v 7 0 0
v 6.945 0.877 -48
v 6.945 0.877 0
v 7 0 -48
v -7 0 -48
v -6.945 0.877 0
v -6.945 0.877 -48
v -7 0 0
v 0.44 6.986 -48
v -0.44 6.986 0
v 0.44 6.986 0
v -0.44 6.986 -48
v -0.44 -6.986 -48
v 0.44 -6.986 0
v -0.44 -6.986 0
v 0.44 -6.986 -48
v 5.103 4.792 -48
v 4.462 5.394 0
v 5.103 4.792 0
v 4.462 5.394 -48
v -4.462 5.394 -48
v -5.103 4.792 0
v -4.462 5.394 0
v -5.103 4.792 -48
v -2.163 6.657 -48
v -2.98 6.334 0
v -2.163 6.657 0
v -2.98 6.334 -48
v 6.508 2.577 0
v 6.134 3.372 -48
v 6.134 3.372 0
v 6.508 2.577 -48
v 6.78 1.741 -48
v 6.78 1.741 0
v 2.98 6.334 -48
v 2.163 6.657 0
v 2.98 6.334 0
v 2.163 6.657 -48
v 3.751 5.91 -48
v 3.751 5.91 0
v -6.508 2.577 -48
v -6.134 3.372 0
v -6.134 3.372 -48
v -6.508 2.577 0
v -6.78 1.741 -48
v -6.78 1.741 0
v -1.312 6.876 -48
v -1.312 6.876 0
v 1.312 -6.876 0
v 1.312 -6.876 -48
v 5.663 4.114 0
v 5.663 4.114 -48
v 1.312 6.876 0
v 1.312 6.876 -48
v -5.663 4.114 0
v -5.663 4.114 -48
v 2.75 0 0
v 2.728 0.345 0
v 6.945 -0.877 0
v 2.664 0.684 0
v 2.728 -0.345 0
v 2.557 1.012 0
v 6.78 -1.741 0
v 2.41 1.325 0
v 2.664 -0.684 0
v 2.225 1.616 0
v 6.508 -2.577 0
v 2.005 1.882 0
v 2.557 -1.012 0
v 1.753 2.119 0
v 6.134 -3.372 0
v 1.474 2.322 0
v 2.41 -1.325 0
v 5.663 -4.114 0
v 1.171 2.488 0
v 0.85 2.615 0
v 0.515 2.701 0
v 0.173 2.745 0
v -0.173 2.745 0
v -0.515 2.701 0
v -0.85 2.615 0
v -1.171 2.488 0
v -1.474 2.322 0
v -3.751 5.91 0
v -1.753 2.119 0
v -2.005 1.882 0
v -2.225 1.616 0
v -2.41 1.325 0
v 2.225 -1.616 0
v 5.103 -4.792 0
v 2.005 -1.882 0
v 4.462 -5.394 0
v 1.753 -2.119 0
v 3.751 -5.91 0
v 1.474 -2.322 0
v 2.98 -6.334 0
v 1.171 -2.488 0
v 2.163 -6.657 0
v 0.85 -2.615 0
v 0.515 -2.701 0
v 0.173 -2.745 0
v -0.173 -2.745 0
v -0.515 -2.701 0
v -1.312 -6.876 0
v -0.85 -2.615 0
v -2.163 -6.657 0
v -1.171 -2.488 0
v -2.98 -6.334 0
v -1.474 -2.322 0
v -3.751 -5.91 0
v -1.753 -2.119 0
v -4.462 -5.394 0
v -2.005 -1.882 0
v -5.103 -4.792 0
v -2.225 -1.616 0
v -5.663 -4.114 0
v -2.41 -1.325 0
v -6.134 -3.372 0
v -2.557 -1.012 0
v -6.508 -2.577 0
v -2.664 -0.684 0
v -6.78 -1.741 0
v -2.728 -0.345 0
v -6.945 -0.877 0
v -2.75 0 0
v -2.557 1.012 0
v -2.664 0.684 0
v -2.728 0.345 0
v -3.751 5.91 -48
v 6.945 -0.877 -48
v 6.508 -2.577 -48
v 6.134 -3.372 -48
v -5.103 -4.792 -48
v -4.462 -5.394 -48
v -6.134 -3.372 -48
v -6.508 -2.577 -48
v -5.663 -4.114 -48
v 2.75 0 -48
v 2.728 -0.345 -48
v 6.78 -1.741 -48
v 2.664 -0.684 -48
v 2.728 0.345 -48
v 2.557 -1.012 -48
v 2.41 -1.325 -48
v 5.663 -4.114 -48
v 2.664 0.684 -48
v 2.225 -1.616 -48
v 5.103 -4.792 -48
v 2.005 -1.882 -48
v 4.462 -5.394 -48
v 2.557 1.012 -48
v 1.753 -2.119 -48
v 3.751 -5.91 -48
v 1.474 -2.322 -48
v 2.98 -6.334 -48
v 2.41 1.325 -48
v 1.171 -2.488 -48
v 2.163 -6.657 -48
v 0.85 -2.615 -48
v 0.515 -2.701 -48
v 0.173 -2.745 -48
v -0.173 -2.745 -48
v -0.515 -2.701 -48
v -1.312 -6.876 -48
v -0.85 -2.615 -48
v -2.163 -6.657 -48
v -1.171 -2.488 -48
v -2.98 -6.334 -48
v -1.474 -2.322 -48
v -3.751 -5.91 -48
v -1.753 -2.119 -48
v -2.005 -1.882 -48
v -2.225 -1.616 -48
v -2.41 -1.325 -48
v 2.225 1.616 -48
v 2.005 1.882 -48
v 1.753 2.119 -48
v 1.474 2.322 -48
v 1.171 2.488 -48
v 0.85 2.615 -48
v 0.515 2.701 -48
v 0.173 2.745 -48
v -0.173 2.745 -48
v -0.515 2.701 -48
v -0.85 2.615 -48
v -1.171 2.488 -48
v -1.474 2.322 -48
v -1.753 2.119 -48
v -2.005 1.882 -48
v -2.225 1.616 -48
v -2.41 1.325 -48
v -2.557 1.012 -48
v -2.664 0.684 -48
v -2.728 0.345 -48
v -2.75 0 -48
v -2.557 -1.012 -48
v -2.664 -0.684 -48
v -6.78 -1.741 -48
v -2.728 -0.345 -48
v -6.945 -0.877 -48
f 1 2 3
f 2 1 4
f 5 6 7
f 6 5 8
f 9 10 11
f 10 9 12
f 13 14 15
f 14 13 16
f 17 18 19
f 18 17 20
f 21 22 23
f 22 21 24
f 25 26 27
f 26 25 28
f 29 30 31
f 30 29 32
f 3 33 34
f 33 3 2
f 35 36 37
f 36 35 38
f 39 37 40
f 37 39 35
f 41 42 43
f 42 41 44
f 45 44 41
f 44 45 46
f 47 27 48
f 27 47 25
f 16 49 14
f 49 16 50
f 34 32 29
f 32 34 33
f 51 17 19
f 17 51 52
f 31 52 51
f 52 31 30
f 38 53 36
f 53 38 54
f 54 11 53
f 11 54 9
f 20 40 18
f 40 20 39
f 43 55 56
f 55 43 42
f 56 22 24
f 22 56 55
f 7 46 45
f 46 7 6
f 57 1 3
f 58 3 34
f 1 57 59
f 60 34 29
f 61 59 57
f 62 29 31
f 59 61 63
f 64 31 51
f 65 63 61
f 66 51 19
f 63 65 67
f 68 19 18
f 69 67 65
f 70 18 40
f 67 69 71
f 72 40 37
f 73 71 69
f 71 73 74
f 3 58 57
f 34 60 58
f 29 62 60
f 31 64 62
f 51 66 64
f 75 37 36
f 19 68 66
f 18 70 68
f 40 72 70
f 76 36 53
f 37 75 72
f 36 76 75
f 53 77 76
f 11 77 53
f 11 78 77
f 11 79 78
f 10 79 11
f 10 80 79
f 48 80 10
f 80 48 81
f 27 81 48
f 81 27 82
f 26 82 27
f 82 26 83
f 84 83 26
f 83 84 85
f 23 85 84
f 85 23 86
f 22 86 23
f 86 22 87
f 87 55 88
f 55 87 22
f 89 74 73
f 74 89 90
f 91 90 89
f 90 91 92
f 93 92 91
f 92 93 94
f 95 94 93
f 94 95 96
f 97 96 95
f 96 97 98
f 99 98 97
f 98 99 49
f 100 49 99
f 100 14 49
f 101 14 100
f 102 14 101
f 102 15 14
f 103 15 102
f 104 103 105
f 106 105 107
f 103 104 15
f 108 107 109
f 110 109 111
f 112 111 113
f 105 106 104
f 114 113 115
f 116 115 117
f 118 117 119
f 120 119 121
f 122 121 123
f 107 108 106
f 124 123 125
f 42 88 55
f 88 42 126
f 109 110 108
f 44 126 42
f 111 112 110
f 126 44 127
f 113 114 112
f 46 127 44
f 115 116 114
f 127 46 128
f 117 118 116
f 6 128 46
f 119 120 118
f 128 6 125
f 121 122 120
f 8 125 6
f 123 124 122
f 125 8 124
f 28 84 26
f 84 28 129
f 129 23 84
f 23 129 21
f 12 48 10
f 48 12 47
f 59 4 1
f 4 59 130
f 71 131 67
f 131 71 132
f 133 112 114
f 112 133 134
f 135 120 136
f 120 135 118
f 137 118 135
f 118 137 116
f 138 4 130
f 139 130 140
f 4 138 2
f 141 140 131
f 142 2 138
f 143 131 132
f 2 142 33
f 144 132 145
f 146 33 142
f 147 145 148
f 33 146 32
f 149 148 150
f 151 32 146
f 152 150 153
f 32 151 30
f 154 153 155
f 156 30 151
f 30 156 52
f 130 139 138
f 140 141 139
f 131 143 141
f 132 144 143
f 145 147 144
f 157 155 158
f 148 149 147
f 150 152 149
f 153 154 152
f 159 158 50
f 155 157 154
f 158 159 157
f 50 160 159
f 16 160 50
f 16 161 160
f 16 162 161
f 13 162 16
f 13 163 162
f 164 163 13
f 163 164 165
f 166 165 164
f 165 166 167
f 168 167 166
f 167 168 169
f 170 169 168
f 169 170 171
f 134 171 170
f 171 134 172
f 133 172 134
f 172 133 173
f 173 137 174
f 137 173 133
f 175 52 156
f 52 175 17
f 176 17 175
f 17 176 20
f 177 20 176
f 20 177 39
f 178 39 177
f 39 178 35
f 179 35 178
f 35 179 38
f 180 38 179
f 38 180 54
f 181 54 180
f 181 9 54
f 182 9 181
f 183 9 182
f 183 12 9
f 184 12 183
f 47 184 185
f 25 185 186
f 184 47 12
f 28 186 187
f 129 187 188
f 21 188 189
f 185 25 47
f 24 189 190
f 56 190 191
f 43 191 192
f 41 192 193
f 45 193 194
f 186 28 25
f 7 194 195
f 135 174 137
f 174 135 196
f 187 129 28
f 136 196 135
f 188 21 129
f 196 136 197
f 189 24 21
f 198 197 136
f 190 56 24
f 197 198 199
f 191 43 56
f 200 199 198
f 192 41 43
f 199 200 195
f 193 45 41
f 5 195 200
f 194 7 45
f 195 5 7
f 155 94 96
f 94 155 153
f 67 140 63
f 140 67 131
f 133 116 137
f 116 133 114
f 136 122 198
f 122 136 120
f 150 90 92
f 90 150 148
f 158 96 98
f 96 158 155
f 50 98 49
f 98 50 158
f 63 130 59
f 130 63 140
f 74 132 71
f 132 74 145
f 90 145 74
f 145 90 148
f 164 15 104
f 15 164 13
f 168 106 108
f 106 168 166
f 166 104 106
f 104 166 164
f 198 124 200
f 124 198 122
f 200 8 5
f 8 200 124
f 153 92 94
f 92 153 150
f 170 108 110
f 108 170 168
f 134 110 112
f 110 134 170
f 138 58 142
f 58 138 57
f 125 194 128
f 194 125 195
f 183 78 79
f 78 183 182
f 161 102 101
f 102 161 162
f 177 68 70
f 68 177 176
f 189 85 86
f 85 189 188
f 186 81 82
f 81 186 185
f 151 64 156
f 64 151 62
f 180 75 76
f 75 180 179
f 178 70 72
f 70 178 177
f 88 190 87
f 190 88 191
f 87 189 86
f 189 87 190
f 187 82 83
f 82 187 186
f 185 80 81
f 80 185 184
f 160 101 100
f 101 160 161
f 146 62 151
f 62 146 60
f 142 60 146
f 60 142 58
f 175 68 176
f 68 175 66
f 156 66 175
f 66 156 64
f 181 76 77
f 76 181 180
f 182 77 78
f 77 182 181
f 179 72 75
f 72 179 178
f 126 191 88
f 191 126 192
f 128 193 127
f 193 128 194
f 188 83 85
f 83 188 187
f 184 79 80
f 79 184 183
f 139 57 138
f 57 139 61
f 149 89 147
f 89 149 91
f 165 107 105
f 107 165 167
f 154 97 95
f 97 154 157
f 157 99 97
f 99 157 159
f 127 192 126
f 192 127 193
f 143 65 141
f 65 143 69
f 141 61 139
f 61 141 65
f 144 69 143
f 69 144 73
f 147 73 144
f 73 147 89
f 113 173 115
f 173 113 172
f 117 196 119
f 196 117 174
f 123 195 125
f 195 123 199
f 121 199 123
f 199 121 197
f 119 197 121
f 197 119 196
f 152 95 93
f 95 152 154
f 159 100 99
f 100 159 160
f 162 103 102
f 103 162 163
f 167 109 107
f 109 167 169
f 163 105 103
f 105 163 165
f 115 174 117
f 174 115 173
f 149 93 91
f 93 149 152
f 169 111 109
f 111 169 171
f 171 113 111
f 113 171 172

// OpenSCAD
$fn = 50;


difference() {
	union() {
		translate(v = [0, 0, -48.0000000000]) {
			cylinder(h = 48, r = 7.0000000000);
		}
		cylinder(h = 0, r = 16.0000000000);
	}
	union() {
		#translate(v = [0, 0, -48]) {
			cylinder(h = 48, r = 2.7500000000);
		}
	}
}
